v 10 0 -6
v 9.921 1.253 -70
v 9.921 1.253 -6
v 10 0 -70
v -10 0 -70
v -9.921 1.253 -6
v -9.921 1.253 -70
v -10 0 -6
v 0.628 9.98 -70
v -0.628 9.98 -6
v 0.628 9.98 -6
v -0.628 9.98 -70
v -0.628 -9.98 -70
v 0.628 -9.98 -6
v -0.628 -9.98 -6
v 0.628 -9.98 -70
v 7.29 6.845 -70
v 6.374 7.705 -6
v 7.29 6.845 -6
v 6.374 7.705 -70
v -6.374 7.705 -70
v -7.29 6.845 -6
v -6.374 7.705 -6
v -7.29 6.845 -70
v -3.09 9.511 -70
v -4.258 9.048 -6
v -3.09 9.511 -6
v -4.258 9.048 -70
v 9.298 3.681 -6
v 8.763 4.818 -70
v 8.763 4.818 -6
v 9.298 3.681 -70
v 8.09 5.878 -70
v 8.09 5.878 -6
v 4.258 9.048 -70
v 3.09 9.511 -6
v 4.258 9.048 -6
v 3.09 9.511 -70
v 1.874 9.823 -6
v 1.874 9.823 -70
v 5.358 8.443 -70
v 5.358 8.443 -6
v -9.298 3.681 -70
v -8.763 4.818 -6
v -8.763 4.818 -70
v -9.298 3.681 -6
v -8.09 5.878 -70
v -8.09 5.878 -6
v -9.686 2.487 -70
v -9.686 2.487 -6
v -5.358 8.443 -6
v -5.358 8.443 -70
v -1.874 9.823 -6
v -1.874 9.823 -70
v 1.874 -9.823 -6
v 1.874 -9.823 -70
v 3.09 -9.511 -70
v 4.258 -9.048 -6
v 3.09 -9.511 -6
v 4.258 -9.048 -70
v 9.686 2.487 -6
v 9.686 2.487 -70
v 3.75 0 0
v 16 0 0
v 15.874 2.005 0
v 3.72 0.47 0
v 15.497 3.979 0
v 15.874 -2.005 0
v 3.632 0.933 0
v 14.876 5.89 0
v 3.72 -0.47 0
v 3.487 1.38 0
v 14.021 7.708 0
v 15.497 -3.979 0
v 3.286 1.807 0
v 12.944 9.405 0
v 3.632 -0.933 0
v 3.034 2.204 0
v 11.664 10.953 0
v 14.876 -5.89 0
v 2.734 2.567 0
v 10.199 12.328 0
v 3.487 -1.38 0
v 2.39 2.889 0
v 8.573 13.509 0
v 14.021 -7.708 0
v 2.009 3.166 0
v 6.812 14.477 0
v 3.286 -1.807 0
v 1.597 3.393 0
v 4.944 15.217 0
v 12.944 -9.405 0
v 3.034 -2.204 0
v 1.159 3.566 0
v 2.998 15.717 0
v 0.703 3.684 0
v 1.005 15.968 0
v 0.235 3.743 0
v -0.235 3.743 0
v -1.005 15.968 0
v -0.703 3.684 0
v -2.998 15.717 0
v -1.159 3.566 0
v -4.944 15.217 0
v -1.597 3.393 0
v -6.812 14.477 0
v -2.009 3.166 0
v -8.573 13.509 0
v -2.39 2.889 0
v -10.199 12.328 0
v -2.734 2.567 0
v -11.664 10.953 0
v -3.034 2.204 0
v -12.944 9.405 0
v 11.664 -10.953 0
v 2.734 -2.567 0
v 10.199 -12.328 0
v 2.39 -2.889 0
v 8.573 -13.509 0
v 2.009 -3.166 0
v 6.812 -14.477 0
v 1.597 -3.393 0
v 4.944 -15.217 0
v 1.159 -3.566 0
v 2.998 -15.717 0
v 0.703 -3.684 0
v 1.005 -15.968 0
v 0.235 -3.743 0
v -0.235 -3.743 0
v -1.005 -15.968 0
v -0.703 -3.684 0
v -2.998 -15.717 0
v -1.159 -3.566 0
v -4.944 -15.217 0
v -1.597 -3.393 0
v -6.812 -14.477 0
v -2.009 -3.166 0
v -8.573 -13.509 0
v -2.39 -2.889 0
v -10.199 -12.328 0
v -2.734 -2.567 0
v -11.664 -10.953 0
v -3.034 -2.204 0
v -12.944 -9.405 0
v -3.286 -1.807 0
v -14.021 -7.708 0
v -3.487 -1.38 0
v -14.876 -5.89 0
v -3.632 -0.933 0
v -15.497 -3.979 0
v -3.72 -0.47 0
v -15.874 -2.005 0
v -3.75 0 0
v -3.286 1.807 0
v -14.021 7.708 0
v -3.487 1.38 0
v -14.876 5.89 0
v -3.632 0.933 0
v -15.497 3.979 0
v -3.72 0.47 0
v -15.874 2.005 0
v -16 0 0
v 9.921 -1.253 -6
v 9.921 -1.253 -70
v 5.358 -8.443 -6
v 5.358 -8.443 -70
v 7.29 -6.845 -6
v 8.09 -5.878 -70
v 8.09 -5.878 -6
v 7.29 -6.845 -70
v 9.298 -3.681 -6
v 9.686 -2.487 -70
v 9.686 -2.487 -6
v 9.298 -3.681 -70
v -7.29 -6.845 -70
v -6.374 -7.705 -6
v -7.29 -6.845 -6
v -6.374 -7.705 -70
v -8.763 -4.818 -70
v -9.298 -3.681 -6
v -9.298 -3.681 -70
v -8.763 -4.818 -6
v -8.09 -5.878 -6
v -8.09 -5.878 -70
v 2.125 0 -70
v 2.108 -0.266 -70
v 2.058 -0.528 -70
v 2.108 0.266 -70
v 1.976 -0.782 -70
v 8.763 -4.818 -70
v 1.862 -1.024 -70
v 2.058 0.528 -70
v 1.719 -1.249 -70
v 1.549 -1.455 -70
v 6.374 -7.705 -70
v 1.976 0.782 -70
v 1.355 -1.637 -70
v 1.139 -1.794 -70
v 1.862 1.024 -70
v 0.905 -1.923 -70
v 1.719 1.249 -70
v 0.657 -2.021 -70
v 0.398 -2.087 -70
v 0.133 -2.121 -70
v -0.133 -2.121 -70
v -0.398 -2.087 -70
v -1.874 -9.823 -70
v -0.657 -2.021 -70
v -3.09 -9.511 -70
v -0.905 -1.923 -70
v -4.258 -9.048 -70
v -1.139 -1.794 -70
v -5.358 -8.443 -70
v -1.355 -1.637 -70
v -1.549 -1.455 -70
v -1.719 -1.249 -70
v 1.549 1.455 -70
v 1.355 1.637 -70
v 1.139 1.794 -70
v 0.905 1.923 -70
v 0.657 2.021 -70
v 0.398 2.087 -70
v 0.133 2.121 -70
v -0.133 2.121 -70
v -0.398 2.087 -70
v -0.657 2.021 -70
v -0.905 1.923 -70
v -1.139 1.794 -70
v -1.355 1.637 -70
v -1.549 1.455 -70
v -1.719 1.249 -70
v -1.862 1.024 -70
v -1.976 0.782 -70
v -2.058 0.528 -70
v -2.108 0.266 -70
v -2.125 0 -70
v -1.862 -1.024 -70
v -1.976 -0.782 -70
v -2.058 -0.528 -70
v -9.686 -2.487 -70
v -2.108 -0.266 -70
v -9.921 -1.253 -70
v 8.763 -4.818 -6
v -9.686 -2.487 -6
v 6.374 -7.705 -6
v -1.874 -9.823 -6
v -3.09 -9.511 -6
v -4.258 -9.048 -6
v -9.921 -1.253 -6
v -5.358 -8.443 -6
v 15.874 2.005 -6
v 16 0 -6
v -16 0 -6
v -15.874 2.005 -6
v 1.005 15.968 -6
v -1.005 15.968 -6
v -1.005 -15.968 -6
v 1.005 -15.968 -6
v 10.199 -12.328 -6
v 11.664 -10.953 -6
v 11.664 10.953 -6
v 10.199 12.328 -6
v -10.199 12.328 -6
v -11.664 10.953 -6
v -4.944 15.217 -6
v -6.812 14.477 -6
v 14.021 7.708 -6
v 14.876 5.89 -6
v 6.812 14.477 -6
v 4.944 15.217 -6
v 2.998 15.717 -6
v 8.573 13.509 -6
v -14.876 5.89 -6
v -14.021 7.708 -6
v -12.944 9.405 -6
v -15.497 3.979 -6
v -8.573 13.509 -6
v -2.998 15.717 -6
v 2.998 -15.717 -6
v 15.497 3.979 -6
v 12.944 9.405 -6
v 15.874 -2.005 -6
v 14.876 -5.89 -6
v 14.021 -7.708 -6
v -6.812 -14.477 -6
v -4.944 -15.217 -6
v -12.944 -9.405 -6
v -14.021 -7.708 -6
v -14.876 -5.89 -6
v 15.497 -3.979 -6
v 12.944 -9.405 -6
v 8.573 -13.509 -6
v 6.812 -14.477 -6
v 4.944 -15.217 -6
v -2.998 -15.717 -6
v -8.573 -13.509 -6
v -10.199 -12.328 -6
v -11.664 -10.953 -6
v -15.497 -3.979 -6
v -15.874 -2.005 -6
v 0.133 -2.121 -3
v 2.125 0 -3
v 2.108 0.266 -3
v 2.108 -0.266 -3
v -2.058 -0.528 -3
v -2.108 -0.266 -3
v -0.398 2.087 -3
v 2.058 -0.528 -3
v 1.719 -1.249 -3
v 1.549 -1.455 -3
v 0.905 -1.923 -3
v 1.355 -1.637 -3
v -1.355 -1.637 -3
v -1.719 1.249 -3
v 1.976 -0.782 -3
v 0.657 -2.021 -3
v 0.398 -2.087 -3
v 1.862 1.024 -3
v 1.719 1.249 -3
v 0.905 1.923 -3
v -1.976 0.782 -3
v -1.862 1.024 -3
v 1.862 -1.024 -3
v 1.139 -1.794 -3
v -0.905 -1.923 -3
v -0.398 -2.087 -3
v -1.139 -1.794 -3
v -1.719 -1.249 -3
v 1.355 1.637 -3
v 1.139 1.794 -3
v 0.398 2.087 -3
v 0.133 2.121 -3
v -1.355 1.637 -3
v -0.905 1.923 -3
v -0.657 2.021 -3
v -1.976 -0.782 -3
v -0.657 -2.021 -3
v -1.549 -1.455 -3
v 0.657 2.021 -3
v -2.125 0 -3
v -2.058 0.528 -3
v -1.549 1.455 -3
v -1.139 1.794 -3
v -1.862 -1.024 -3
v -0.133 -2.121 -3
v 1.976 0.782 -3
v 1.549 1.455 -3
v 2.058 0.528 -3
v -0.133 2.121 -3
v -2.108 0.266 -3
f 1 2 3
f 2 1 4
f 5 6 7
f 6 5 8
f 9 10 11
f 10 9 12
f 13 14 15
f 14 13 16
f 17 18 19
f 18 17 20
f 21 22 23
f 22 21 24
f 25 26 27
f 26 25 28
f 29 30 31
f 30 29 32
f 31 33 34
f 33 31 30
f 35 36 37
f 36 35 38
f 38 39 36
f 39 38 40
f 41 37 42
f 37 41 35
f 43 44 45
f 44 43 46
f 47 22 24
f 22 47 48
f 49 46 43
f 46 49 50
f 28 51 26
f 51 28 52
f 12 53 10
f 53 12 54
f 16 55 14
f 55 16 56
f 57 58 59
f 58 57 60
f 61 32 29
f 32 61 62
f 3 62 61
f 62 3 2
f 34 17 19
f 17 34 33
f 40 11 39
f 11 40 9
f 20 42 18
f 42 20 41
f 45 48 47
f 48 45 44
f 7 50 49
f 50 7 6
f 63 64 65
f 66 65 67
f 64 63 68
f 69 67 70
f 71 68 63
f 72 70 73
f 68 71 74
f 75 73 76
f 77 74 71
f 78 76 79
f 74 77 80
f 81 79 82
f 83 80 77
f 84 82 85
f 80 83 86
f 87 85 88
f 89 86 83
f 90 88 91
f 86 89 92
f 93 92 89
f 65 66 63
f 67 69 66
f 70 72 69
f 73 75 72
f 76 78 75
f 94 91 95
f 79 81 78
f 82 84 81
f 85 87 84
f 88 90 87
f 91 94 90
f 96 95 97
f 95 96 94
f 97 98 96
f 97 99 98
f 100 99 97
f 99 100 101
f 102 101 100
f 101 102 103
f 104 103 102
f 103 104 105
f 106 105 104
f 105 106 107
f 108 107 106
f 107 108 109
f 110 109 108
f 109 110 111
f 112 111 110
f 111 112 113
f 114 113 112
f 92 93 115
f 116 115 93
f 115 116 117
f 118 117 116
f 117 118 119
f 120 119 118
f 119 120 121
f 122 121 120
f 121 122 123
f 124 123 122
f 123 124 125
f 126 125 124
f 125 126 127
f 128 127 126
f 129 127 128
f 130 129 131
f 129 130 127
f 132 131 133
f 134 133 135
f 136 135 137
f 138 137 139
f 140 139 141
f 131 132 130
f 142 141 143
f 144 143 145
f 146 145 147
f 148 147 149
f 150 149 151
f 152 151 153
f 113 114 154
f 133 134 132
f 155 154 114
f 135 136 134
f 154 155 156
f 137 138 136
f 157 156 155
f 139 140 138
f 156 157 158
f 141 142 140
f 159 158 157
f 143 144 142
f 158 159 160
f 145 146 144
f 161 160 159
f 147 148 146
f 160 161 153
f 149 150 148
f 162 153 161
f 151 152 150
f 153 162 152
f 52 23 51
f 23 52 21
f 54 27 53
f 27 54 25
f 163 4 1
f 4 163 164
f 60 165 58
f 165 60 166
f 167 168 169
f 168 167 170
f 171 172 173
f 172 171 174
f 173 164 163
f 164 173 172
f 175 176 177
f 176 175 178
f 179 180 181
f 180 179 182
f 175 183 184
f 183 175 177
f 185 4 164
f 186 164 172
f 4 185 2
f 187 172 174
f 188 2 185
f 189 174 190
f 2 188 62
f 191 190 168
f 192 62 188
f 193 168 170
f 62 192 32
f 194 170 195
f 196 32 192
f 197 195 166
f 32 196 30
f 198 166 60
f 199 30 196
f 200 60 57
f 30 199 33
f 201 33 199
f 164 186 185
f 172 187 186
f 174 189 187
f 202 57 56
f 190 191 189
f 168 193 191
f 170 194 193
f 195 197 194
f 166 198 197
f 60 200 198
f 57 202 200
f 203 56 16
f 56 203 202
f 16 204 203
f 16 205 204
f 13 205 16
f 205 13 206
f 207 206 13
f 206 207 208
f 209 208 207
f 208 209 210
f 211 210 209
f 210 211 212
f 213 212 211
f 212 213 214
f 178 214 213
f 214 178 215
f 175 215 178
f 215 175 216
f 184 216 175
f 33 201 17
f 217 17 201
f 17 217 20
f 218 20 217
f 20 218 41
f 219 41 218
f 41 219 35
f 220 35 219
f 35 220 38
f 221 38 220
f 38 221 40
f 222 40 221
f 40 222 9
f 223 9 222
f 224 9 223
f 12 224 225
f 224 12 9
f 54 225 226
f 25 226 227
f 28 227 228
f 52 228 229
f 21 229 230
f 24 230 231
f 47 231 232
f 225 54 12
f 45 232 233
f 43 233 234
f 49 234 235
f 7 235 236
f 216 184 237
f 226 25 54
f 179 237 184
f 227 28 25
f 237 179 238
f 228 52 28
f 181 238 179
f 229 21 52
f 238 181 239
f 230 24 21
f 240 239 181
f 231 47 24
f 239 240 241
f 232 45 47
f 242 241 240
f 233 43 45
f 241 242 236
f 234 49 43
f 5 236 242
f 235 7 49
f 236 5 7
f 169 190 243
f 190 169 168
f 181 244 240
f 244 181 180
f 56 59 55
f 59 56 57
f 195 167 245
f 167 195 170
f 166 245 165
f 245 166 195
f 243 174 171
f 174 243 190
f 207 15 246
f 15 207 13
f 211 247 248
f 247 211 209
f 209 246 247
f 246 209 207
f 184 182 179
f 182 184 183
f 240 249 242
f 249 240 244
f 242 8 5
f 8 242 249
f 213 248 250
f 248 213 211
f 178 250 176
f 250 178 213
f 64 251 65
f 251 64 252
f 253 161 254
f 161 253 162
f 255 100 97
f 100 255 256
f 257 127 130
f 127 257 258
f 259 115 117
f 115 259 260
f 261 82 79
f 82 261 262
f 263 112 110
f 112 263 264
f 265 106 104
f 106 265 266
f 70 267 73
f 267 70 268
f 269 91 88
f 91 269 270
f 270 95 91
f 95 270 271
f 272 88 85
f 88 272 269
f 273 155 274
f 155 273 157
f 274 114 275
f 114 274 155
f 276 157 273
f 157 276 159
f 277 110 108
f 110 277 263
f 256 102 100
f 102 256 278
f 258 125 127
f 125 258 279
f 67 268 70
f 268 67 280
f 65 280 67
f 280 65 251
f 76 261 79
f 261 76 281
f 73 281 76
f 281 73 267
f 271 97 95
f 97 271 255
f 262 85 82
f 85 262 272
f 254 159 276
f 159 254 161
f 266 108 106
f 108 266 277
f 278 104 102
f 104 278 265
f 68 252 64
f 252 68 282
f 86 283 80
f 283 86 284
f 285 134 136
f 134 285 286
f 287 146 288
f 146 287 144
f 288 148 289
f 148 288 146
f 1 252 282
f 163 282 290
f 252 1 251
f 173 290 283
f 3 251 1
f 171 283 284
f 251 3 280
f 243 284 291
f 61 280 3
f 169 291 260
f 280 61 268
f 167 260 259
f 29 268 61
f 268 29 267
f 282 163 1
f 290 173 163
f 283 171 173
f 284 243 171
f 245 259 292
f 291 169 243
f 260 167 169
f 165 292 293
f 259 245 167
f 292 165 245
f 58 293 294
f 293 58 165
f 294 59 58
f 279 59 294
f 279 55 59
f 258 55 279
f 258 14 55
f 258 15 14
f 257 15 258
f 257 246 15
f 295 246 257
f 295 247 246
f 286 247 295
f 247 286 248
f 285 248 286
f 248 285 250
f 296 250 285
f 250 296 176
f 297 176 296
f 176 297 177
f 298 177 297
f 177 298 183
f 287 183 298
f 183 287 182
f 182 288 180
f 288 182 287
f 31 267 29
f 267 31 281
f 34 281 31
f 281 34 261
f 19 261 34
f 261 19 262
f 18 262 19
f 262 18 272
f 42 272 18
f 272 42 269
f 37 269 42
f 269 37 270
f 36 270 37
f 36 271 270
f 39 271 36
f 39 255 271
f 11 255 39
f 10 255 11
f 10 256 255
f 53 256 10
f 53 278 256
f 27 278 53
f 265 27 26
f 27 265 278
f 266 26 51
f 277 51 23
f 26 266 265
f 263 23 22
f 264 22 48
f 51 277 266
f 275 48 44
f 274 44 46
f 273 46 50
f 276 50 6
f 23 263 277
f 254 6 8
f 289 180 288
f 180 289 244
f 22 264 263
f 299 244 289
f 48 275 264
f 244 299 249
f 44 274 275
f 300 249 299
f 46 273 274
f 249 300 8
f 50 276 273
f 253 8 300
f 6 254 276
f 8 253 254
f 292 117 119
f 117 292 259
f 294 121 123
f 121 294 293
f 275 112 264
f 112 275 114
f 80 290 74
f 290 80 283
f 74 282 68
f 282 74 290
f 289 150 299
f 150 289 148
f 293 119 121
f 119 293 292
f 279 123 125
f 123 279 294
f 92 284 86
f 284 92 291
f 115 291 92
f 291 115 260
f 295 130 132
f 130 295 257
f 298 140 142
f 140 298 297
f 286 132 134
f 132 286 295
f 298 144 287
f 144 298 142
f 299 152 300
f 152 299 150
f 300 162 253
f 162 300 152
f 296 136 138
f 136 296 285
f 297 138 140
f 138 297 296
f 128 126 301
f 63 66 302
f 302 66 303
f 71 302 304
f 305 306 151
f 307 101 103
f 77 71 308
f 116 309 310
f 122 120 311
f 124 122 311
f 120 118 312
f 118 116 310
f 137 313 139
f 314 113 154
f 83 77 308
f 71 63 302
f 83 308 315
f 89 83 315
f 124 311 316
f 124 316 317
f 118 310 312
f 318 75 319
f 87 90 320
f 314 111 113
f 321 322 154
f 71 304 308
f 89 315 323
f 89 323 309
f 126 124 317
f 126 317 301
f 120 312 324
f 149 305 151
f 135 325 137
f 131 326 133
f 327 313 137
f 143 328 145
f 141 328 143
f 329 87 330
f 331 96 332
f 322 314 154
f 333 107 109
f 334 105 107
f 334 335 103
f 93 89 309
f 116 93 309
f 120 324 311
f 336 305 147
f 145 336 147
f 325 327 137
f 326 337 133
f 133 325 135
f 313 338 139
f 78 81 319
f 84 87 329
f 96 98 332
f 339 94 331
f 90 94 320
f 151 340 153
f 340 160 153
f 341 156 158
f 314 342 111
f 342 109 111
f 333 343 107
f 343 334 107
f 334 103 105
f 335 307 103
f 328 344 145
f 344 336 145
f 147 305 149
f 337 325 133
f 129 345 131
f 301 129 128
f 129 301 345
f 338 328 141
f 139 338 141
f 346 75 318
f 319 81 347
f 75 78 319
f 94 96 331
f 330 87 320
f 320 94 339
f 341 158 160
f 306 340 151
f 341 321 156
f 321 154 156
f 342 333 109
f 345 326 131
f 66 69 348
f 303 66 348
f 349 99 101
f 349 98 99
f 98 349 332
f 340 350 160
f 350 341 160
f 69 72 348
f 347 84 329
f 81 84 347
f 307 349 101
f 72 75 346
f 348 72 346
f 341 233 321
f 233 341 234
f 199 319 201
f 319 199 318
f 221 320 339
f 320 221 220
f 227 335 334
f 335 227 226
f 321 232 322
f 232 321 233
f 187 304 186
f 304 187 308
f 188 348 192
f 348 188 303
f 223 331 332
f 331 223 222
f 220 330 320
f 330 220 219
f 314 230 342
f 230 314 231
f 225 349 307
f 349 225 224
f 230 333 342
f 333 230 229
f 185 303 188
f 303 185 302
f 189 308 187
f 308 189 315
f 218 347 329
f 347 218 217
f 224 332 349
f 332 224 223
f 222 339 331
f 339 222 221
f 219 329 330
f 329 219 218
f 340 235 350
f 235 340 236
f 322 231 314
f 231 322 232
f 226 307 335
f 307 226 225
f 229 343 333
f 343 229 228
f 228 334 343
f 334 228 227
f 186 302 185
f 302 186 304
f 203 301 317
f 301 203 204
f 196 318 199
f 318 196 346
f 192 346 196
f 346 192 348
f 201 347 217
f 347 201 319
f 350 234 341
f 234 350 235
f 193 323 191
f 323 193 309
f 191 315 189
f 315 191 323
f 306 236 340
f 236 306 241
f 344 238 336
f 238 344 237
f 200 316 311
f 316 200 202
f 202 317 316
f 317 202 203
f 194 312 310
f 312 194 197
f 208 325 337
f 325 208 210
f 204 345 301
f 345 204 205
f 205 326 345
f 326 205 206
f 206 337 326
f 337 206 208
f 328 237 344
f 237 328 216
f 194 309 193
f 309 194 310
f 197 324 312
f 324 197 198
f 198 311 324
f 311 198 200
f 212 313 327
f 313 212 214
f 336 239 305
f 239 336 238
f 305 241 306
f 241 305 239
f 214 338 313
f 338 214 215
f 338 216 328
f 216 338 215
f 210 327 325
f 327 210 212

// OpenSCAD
$fn = 50;


difference() {
	union() {
		translate(v = [0, 0, -70.0000000000]) {
			cylinder(h = 70, r = 10.0000000000);
		}
		translate(v = [0, 0, -6.0000000000]) {
			cylinder(h = 6, r = 16.0000000000);
		}
	}
	union() {
		translate(v = [0, 0, 0]) {
			rotate(a = [0, 0, 0]) {
				difference() {
					union() {
						#translate(v = [0, 0, -70.0000000000]) {
							cylinder(h = 70, r = 2.0000000000);
						}
						#translate(v = [0, 0, -3]) {
							cylinder(h = 3, r1 = 2.1250000000, r2 = 3.7500000000);
						}
						#translate(v = [0, 0, -70.0000000000]) {
							cylinder(h = 70, r = 2.1250000000);
						}
						#translate(v = [0, 0, -70.0000000000]) {
							cylinder(h = 70, r = 2.0000000000);
						}
					}
					union();
				}
			}
		}
	}
}
